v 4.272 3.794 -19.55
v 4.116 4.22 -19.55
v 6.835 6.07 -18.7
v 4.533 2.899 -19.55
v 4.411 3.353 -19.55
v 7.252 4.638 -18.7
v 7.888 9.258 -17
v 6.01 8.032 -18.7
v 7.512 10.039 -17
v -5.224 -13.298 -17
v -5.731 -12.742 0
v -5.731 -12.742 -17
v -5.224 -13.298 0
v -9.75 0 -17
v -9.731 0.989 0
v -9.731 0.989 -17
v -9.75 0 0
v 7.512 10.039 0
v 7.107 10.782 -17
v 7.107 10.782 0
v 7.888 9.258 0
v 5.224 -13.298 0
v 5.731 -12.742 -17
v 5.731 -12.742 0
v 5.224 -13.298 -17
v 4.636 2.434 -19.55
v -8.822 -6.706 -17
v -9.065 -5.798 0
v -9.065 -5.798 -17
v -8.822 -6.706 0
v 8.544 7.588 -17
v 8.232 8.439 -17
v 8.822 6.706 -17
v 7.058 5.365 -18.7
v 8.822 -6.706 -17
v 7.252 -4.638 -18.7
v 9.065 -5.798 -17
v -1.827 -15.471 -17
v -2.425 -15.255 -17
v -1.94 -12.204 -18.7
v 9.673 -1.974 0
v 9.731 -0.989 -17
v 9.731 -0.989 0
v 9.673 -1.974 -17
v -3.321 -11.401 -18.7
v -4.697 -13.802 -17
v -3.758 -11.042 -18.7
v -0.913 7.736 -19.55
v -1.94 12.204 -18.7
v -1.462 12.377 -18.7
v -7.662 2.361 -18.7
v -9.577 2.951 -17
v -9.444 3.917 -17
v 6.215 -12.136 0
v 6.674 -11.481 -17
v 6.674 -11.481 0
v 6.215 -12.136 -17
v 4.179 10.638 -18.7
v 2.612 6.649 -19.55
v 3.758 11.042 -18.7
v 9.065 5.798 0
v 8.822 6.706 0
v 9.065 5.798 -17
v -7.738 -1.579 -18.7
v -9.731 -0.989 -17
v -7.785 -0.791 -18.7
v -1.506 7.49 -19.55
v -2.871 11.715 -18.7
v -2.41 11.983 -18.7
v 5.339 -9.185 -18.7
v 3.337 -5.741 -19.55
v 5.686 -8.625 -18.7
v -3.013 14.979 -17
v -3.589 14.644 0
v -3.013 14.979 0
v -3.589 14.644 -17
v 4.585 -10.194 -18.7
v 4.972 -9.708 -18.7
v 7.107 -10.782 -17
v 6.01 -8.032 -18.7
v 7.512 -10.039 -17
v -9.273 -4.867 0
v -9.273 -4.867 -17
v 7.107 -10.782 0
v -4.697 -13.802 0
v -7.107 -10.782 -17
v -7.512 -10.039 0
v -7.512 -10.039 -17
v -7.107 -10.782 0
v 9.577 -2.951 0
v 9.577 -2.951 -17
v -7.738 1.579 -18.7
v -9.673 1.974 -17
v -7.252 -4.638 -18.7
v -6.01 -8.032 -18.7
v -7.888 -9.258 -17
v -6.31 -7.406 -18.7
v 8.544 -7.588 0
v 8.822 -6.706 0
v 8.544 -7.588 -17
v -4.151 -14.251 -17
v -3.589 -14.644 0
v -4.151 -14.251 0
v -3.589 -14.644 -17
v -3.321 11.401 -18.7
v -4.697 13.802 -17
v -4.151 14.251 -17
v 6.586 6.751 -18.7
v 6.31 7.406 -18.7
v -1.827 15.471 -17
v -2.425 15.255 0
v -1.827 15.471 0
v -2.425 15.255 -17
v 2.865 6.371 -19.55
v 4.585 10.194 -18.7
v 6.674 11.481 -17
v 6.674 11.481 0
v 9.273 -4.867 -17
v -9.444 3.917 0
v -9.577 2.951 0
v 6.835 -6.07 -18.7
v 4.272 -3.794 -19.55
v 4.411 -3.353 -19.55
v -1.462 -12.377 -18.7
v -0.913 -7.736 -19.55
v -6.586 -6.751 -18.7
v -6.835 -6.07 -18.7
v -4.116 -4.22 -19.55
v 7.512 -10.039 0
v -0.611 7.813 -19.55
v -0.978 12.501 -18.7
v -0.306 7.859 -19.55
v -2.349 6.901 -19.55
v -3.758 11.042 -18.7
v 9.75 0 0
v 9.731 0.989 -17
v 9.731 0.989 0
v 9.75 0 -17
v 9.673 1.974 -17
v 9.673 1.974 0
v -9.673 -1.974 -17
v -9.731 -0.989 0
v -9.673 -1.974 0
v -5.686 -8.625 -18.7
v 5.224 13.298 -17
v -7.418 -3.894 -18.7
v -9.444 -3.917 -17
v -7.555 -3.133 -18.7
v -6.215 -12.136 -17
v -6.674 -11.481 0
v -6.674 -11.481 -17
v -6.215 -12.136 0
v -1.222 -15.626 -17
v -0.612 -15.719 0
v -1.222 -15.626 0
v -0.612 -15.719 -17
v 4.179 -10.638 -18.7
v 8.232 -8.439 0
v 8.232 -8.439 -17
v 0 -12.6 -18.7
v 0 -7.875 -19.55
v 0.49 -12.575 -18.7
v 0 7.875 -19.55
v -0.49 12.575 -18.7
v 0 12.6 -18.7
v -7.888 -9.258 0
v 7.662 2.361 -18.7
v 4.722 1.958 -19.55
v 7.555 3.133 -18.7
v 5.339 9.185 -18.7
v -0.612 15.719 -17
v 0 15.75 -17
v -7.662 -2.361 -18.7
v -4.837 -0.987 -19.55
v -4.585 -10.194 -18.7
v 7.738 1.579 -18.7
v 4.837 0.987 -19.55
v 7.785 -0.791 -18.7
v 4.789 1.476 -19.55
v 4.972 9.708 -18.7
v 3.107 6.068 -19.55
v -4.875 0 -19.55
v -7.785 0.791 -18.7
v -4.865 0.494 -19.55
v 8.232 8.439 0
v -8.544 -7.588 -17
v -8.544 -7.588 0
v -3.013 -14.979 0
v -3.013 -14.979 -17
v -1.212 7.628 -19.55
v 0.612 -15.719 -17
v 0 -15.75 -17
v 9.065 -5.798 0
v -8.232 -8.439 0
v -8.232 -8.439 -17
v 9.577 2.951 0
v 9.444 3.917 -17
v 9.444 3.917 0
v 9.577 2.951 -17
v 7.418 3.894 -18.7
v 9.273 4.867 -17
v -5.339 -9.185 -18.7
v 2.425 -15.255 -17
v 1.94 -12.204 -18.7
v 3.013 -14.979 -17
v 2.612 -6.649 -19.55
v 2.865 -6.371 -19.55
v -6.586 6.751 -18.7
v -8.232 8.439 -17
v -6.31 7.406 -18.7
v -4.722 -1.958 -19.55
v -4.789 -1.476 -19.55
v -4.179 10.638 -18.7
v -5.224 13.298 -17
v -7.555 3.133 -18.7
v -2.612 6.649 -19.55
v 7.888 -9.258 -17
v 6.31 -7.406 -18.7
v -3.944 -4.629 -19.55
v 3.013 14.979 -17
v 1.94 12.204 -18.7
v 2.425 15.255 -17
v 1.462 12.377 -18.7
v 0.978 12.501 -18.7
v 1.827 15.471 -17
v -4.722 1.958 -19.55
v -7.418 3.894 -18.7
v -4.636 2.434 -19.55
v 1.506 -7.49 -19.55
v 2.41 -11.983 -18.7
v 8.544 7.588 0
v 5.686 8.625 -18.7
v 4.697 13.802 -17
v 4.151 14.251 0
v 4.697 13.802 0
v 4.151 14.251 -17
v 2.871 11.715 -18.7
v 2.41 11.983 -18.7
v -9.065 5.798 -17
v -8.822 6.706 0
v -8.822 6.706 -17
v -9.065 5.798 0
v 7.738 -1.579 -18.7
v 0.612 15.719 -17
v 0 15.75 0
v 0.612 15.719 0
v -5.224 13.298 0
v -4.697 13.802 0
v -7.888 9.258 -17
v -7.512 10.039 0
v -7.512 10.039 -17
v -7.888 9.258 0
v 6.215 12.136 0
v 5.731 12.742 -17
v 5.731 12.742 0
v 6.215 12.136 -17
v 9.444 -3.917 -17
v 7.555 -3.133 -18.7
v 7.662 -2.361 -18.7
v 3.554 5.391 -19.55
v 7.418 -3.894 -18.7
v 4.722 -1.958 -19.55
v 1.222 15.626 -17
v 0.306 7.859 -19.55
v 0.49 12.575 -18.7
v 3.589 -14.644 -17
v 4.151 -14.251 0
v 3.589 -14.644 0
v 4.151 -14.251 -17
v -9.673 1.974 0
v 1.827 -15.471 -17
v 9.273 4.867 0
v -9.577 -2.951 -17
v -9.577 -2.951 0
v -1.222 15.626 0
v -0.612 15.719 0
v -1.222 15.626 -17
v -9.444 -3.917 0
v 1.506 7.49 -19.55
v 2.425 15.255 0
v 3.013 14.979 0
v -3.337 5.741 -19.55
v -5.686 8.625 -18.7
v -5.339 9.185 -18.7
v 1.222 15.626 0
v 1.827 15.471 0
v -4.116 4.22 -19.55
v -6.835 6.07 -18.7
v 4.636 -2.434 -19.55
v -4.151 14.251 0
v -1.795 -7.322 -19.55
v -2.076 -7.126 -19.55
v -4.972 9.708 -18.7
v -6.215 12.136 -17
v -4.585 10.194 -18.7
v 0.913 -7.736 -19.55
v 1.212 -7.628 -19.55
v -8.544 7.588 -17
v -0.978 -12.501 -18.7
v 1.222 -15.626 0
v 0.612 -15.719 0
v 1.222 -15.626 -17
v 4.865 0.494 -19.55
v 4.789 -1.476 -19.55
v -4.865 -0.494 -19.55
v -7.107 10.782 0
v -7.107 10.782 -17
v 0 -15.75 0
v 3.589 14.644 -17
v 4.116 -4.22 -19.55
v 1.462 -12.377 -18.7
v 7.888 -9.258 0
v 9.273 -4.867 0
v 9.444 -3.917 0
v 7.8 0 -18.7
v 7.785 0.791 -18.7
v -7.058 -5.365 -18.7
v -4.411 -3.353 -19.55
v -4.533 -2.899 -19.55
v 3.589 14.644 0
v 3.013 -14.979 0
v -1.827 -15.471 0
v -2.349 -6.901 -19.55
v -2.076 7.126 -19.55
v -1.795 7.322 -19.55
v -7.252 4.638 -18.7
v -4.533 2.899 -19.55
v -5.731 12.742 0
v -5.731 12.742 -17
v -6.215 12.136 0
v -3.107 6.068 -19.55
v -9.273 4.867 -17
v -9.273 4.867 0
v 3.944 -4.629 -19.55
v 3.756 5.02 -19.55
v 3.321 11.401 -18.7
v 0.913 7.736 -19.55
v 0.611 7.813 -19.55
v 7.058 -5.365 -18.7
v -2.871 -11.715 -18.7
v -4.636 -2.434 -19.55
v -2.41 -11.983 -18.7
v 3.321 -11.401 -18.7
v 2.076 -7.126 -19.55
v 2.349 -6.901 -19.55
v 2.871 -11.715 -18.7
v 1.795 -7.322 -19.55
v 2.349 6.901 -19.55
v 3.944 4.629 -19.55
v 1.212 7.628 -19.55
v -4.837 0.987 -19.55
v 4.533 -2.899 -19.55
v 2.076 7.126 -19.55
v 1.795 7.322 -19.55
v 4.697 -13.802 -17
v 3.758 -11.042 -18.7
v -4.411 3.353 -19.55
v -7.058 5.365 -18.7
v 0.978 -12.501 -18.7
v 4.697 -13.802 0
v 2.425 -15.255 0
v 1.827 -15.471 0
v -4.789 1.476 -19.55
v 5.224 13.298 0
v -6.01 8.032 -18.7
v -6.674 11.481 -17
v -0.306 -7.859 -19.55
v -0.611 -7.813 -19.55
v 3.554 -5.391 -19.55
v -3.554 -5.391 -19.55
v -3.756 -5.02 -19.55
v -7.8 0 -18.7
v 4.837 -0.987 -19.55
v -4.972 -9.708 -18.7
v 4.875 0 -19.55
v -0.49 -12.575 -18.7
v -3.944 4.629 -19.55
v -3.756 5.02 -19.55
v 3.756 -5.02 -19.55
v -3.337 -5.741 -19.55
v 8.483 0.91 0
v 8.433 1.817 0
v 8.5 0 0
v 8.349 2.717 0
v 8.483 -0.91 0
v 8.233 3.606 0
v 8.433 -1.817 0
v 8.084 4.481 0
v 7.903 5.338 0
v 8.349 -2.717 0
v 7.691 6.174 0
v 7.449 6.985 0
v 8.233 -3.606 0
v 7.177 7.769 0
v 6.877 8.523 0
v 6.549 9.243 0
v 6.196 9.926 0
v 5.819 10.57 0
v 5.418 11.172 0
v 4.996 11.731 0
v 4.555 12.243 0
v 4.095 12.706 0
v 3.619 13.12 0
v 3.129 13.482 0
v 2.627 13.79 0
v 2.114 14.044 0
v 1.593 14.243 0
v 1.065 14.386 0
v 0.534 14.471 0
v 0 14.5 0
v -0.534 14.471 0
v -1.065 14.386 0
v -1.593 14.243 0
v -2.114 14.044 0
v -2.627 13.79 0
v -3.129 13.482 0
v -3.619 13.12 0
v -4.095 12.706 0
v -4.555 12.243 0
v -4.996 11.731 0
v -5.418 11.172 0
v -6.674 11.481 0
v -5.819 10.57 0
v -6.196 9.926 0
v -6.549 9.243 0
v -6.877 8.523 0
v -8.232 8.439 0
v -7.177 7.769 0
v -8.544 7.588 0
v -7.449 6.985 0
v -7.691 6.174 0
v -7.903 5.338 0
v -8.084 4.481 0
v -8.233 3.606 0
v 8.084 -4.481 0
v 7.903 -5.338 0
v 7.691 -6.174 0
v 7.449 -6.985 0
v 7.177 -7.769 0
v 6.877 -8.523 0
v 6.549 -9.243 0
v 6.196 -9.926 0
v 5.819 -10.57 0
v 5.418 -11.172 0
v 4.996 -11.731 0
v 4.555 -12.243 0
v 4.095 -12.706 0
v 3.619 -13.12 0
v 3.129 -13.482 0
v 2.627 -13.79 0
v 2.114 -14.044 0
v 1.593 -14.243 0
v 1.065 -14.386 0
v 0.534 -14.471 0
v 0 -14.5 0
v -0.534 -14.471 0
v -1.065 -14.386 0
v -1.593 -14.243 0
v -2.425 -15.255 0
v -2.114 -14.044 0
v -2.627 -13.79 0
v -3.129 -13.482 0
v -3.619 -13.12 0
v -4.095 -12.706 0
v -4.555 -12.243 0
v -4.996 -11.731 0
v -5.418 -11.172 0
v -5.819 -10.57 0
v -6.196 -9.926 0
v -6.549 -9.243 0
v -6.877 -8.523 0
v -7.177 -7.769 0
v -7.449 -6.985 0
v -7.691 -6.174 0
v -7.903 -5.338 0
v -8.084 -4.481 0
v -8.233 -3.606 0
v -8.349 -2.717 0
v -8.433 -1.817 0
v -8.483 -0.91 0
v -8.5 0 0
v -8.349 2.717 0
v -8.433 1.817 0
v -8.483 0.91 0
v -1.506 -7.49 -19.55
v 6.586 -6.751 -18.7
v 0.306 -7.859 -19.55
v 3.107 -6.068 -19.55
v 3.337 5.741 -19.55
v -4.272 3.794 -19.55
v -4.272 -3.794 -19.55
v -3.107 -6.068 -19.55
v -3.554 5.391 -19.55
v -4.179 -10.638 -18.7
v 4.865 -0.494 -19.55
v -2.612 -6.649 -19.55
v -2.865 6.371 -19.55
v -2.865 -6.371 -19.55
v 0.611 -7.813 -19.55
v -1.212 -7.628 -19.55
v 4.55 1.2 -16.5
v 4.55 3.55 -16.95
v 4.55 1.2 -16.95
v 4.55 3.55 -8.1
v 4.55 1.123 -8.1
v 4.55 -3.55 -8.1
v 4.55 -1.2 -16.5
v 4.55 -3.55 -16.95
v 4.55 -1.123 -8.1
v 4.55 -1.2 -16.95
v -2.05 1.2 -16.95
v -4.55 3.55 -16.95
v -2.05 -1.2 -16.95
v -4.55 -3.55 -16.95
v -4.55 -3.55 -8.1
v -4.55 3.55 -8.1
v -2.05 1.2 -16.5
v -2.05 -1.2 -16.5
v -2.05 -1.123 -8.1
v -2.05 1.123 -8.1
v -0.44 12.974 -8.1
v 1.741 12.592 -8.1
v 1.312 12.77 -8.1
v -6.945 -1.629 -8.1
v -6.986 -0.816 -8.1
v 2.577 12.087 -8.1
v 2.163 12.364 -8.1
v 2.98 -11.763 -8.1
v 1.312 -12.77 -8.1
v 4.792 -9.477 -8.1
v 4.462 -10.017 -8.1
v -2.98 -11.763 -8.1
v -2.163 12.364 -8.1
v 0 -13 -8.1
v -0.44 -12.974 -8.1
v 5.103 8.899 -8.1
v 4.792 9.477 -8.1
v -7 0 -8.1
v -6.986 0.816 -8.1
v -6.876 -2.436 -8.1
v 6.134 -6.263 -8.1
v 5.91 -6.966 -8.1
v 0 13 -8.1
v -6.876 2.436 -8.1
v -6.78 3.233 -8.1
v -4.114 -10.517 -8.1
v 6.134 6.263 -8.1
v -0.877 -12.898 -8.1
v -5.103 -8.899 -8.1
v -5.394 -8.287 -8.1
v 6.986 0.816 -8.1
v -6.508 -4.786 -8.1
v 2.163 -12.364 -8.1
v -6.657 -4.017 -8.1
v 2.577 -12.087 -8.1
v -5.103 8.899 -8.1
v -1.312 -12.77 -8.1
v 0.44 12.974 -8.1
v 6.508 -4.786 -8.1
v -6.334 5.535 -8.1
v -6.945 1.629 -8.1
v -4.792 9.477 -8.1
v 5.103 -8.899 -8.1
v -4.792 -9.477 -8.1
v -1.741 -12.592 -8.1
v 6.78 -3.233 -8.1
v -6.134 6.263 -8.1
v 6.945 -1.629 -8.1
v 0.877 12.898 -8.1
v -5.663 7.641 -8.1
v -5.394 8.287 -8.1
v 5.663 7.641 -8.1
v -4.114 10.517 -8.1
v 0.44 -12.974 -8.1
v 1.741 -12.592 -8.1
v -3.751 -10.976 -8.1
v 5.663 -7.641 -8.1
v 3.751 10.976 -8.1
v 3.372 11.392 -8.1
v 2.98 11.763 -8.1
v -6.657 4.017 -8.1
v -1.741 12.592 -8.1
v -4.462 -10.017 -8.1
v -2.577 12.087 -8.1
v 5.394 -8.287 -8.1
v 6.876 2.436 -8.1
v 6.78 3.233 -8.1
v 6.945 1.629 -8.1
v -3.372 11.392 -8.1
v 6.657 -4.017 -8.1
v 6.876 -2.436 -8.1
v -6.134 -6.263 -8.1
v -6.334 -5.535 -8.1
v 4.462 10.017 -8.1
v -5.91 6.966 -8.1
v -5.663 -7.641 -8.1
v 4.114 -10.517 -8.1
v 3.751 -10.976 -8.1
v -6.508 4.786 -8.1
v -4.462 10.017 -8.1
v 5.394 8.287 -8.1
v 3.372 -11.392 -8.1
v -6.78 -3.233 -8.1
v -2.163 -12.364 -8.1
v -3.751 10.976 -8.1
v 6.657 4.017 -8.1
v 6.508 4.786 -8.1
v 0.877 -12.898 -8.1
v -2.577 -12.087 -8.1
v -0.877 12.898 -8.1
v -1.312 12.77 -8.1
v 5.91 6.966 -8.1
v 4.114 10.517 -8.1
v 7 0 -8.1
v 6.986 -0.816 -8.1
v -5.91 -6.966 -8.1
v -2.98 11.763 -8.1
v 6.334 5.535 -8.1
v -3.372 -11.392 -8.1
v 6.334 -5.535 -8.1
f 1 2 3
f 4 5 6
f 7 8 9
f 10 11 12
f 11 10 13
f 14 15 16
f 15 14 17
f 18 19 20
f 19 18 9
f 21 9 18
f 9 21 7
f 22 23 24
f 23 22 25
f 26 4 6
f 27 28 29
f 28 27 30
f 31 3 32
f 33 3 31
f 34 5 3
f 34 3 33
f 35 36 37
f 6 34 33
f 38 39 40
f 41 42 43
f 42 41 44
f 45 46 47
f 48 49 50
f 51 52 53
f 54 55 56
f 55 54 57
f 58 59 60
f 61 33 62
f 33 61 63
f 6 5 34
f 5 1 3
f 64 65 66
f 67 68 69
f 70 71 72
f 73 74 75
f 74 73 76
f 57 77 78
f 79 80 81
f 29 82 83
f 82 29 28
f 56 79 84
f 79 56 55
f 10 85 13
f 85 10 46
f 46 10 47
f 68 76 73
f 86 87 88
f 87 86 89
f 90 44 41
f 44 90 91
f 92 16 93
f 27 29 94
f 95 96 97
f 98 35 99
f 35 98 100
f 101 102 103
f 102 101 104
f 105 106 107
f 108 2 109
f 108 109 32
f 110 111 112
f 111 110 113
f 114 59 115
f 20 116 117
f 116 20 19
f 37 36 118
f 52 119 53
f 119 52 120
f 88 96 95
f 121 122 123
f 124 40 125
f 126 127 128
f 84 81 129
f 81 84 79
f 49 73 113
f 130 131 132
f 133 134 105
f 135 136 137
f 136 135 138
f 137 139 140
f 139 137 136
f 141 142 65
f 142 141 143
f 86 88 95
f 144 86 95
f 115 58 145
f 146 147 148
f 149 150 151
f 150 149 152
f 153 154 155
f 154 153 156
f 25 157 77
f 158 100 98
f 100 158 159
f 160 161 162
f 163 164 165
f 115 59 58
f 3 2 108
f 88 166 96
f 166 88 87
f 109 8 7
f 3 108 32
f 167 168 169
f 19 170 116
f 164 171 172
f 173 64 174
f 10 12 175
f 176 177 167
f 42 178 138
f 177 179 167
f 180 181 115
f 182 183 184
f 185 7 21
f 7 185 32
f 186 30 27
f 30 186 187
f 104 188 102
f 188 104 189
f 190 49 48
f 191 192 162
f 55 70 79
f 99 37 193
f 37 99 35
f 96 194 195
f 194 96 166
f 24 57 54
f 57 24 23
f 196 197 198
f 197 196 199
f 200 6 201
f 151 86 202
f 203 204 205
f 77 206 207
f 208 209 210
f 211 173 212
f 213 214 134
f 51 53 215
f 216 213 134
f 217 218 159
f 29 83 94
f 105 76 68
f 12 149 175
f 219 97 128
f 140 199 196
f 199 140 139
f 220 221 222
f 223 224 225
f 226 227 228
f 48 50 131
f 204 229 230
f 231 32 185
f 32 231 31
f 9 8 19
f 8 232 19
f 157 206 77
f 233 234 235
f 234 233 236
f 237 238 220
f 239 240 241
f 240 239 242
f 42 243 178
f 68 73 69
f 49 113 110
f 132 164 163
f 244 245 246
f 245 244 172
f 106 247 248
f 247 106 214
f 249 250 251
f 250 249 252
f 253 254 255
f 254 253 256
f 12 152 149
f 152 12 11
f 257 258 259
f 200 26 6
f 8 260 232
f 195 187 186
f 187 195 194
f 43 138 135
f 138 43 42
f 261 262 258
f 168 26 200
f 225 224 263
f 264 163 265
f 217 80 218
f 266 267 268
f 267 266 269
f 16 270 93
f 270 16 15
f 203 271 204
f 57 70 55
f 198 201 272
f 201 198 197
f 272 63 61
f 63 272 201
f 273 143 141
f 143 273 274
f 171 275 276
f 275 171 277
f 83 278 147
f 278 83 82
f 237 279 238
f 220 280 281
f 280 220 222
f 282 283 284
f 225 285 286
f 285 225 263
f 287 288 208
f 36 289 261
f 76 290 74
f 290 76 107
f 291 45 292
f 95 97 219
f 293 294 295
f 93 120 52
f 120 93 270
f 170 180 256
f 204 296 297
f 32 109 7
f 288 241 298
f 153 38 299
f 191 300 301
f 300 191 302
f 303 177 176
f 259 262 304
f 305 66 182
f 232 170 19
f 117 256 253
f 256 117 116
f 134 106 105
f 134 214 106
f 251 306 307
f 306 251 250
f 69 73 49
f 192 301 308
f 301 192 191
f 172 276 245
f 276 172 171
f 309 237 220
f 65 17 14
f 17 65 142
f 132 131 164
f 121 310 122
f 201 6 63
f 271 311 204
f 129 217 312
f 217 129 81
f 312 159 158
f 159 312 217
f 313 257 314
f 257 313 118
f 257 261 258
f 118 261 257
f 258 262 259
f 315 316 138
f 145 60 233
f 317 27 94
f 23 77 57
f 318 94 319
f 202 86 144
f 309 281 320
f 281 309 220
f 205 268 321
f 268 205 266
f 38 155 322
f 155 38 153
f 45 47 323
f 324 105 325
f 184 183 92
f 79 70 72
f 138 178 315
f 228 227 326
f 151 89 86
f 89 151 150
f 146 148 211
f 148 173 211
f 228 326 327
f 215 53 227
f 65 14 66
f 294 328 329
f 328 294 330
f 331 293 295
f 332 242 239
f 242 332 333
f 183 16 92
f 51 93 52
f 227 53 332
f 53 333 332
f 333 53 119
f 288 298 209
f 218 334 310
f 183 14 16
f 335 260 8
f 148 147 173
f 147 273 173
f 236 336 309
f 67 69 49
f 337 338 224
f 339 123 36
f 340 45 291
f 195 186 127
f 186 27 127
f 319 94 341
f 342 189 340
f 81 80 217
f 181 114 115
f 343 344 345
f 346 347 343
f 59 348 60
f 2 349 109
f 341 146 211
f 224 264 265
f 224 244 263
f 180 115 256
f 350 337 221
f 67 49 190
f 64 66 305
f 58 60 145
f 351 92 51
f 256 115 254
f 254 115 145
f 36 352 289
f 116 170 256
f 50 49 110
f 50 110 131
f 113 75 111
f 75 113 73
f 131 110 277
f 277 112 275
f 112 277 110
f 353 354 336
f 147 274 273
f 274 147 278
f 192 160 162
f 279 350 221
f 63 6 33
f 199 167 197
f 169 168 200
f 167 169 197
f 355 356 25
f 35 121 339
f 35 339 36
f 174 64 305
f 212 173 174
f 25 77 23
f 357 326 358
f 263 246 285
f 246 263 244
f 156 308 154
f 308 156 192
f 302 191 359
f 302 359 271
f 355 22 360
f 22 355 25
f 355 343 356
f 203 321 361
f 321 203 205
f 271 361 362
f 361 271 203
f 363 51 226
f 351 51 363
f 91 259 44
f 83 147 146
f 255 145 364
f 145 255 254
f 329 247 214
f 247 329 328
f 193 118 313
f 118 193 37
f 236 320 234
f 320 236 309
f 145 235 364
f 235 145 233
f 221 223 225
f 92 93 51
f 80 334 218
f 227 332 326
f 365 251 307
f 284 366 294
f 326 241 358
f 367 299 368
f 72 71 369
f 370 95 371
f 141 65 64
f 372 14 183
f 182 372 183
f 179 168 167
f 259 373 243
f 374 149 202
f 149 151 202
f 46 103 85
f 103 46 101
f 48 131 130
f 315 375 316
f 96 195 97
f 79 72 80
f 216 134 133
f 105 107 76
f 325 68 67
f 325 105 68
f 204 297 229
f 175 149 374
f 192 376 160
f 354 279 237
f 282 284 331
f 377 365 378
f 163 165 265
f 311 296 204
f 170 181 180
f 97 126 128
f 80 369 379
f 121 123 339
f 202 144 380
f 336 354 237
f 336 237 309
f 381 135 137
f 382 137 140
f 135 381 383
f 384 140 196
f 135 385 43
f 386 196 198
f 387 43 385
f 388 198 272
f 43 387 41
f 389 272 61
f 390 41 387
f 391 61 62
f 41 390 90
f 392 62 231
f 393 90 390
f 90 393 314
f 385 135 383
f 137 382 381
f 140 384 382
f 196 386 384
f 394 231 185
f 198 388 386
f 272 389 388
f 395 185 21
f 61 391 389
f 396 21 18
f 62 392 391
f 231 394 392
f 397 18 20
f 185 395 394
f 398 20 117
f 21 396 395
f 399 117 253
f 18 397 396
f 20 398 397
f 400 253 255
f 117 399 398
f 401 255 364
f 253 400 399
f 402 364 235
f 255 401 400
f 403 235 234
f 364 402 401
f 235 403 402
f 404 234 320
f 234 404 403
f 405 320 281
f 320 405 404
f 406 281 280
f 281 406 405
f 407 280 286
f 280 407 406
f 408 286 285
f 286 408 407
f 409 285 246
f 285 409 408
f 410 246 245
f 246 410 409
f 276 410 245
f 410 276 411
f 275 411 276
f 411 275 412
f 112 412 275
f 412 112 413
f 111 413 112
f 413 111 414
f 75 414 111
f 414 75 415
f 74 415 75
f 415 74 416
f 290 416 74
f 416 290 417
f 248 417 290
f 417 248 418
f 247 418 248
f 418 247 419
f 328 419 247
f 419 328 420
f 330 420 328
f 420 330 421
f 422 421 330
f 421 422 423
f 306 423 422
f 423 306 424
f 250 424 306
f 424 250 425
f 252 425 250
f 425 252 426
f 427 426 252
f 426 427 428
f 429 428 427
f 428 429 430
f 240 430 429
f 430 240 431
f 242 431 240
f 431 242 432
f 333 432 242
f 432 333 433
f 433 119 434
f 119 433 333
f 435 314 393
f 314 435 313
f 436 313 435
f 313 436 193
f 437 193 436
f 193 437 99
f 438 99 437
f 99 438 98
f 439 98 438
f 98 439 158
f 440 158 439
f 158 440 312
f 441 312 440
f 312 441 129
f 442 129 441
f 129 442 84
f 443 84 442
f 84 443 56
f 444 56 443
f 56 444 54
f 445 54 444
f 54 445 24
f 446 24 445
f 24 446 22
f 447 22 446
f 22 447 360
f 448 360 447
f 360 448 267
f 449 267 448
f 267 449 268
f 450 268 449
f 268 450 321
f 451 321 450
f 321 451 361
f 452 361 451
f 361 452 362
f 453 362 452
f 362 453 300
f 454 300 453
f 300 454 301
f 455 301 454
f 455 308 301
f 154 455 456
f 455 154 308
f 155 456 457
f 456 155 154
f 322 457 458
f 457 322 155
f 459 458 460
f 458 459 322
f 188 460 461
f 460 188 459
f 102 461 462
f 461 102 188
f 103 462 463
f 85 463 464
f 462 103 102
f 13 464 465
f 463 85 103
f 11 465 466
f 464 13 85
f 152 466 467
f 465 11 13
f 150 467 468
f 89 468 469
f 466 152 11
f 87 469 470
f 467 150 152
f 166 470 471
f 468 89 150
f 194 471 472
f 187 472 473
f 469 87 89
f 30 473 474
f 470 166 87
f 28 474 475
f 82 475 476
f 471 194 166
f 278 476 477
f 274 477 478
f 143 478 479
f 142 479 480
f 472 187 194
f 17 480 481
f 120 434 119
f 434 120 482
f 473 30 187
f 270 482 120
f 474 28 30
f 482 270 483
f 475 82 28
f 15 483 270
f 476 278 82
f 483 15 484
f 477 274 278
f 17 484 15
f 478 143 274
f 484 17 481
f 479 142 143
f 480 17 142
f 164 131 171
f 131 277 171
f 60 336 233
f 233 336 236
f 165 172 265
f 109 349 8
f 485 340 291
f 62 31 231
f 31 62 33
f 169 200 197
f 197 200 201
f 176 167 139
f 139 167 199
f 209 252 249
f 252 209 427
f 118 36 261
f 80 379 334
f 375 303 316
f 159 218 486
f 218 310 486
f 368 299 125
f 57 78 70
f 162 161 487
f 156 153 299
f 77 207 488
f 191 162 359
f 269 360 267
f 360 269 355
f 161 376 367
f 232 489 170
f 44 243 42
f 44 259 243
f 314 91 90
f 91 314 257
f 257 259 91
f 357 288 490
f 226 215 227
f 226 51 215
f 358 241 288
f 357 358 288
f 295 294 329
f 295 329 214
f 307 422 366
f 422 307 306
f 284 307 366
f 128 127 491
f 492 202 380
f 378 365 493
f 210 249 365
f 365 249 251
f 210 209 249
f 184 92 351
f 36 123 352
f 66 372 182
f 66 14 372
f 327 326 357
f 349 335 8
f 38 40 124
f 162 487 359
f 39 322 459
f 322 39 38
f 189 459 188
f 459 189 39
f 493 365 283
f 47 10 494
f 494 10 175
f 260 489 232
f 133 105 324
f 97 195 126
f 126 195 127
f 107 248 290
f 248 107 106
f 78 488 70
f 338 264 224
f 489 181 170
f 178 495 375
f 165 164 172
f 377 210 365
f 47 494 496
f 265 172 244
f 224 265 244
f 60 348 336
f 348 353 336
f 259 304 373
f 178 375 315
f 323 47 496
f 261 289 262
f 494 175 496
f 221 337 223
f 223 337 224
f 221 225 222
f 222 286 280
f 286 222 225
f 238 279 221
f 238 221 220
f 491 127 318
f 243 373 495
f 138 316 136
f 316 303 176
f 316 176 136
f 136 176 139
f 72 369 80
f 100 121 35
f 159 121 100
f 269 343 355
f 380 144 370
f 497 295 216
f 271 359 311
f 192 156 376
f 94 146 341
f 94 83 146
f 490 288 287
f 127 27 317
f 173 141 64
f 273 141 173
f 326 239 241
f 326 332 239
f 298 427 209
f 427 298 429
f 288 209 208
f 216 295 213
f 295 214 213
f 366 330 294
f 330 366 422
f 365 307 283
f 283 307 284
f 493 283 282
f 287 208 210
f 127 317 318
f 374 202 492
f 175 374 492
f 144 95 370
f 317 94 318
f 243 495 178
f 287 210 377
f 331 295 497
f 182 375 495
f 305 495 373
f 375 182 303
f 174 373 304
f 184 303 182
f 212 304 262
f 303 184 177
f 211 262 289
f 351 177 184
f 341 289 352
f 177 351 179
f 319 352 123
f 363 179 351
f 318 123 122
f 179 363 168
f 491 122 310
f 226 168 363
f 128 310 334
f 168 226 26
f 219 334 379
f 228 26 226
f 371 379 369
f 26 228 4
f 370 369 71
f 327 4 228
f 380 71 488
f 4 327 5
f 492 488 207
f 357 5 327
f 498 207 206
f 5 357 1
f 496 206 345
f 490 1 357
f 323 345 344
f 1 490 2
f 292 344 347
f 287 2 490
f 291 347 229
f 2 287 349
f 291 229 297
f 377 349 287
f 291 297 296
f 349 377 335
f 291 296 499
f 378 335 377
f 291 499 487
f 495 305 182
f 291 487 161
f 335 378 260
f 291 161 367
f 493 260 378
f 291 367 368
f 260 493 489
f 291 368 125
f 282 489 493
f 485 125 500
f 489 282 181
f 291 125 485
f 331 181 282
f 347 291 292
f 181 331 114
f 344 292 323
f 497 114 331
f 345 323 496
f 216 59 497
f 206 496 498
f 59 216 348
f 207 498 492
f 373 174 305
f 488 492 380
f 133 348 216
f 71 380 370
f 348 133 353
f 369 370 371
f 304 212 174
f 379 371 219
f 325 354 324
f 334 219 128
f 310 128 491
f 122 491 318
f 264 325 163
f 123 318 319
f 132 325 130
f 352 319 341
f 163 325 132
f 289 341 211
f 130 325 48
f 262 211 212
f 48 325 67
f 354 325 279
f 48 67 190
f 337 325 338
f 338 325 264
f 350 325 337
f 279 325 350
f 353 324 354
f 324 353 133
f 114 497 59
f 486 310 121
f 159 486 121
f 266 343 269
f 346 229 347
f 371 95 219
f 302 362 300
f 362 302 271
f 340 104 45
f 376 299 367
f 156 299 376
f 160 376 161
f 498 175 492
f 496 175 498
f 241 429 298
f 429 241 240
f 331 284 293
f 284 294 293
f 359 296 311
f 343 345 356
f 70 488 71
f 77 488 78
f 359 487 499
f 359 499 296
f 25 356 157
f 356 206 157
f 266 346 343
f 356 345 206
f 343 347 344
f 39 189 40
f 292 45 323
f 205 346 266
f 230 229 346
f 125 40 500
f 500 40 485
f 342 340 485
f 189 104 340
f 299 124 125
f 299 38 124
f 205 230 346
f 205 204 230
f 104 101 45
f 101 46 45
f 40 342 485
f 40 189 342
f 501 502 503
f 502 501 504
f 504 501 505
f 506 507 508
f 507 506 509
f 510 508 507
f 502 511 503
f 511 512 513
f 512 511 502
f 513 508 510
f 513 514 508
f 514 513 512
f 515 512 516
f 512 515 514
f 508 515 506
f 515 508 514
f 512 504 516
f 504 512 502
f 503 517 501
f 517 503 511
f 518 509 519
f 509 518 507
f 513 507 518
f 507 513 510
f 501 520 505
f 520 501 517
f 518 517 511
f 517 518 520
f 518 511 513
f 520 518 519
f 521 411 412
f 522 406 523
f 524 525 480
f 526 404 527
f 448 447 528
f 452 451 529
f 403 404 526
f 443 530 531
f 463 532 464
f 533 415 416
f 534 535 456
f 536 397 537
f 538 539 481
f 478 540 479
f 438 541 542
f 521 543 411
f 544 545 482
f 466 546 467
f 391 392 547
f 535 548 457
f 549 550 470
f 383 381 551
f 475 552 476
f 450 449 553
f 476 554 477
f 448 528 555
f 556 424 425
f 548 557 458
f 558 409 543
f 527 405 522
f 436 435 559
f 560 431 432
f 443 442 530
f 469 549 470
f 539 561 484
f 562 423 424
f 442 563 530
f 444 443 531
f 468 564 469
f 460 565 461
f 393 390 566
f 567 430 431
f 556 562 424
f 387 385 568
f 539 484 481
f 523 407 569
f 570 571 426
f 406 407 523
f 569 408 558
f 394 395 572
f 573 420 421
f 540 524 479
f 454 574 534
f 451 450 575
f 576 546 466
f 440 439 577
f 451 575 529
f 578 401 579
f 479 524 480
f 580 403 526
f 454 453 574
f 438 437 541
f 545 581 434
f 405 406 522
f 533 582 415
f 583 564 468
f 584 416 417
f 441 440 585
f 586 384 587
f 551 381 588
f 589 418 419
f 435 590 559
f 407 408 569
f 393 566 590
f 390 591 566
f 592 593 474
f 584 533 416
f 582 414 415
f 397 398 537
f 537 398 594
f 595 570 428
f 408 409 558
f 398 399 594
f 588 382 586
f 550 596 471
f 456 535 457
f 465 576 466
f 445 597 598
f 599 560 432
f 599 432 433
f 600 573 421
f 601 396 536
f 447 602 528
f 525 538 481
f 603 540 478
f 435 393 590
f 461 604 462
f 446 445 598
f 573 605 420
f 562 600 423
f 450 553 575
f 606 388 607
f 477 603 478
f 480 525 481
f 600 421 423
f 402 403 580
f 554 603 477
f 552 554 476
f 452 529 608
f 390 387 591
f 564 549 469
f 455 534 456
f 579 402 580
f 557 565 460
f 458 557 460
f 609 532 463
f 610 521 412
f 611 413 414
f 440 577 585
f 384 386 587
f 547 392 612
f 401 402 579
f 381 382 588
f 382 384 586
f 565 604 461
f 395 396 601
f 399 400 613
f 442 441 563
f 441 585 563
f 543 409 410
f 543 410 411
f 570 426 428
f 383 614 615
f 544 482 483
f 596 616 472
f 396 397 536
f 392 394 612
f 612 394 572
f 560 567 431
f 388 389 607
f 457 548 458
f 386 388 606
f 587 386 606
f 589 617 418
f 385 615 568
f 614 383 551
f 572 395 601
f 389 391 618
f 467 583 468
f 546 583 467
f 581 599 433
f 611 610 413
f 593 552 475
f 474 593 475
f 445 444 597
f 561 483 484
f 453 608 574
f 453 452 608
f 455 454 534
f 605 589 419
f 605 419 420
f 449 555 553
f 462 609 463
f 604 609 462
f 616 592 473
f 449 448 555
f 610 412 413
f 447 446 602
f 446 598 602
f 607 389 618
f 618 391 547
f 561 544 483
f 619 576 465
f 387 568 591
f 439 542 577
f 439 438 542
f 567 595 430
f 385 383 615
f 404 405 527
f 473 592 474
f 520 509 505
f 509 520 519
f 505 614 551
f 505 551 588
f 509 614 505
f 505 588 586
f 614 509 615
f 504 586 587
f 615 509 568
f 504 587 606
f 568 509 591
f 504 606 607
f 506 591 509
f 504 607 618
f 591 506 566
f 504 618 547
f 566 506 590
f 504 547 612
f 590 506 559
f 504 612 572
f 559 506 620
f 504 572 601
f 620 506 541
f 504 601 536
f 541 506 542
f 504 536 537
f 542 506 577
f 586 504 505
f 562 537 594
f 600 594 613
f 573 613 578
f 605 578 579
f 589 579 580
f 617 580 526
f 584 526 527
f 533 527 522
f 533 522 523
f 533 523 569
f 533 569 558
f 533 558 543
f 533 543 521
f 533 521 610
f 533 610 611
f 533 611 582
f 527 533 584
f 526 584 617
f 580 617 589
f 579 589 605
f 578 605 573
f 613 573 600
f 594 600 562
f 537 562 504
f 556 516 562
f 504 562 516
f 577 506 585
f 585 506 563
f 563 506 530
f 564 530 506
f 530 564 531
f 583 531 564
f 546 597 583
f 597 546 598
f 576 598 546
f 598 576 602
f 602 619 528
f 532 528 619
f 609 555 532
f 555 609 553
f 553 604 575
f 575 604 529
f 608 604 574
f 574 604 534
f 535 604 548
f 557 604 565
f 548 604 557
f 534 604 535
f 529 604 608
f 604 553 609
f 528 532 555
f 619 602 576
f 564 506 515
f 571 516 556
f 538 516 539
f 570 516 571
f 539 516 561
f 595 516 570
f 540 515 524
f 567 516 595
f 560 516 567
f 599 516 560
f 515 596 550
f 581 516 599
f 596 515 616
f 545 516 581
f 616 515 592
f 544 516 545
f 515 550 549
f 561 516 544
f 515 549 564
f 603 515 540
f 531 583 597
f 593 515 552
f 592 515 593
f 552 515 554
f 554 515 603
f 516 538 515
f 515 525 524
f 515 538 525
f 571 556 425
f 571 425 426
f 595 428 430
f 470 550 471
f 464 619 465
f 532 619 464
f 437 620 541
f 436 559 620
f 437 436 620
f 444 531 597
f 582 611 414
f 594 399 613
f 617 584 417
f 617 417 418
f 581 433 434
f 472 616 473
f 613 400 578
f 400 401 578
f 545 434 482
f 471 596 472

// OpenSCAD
// Holden Astra Gear Selection Button Replacement
// Brian Khuu June 2020
// Description: Was fixing a broken gear selection button from a holden astra car
// Note: Added taper to avoid getting stuck when pressed

/* [Oval Spec] */
// Width : Measured 34mm
oval_w = 34;
// Heigh : Measured 22mm
oval_h = 22;
// Skirt : Tested 8mm
oval_s = 8;
// Button Tolerance (Shrink) : Tested 2.5mm
ButtonTolerance = 2.5;

/* [Mount Post Spec] */
// Width : Measured 7mm
post_w = 7;
// Height : Measured 9mm
post_h = 9;
// Depth : Measured 10mm
post_d = 9;
// Hole Windage (Larger Hole) : 0.1mm
post_windage = 0.1;

/* [Mount Post Locking Post] */
// Post Lock Width : Measured 2mm
postlock_w = 2;
// Post Lock Heigh : Measured 7mm
postlock_h = 7-0.5; 
// Post Lock Fiction : Tested 0.3mm
postlock_friction = 0.3;

/* Includes */
use <MCAD/regular_shapes.scad>

/* Smoothing Adjustment */
$fn=100;

module button()
{
    bulkc_d = post_d + oval_s;
    postc_d = post_d + oval_s;
    
    // Button
    difference()
    {
        union()
        { 
            hull()
            {
                // Smoothing Bump
                oval_prism((bulkc_d*1.15), (oval_w-ButtonTolerance)*0.5/2, (oval_h-ButtonTolerance)*0.5/2);
                oval_prism((bulkc_d*1.1), (oval_w-ButtonTolerance)*0.8/2, (oval_h-ButtonTolerance)*0.8/2);
                
                // Bulk
                oval_prism(bulkc_d, (oval_w-ButtonTolerance)/2, (oval_h-ButtonTolerance)/2);
            }
            
        }

        // Hole
        translate([0,0,postc_d/2 - 0.1])
            cube([post_h,post_w,postc_d] + [post_windage,post_windage,0.1], center=true);
        
        // Hole Taper
        hull()
        {
            translate([0,0,2])
                cube([post_h,post_w,0.2], center=true);
            translate([0,0,-0.1])
                cube([post_h+2,post_w+2,0.2], center=true);
        }
    }
}

module button_with_postlock()
{
    postc_d = post_d + oval_s;

    difference()
    {
        union()
        {
            button();
            
            // The holden astra has a alignment post
            // postlock_friction is there to allow the locking post to grip the post
            hull()
            {
                // Button Locking Post
                translate([(post_h-postlock_h)/2,0,postc_d])
                    cube([postlock_h,postlock_w+postlock_friction,(1)] + [post_windage,post_windage,0], center=true);
                // Button Locking Post
                translate([(post_h-postlock_h)/2,0,0.1])
                    cube([postlock_h,postlock_w,0.1] + [post_windage,post_windage,0], center=true);
                // Button Locking Post (gapfill)
                translate([(post_h)/2+1.1,0,0.1])
                    cube([0.1,postlock_w,0.1] + [post_windage,post_windage,0], center=true);
            }
        }
        
        hull()
        {
            translate([0,0,oval_s])
                oval_prism(0.1, (oval_w-8)/2, (oval_h-8)/2);
    
            translate([0,0,-0.1])
                oval_prism(0.1, (oval_w-5)/2, (oval_h-5)/2);
        }
    }
}

// Rotated to good print orientation
rotate([180,0,0])
button_with_postlock();
